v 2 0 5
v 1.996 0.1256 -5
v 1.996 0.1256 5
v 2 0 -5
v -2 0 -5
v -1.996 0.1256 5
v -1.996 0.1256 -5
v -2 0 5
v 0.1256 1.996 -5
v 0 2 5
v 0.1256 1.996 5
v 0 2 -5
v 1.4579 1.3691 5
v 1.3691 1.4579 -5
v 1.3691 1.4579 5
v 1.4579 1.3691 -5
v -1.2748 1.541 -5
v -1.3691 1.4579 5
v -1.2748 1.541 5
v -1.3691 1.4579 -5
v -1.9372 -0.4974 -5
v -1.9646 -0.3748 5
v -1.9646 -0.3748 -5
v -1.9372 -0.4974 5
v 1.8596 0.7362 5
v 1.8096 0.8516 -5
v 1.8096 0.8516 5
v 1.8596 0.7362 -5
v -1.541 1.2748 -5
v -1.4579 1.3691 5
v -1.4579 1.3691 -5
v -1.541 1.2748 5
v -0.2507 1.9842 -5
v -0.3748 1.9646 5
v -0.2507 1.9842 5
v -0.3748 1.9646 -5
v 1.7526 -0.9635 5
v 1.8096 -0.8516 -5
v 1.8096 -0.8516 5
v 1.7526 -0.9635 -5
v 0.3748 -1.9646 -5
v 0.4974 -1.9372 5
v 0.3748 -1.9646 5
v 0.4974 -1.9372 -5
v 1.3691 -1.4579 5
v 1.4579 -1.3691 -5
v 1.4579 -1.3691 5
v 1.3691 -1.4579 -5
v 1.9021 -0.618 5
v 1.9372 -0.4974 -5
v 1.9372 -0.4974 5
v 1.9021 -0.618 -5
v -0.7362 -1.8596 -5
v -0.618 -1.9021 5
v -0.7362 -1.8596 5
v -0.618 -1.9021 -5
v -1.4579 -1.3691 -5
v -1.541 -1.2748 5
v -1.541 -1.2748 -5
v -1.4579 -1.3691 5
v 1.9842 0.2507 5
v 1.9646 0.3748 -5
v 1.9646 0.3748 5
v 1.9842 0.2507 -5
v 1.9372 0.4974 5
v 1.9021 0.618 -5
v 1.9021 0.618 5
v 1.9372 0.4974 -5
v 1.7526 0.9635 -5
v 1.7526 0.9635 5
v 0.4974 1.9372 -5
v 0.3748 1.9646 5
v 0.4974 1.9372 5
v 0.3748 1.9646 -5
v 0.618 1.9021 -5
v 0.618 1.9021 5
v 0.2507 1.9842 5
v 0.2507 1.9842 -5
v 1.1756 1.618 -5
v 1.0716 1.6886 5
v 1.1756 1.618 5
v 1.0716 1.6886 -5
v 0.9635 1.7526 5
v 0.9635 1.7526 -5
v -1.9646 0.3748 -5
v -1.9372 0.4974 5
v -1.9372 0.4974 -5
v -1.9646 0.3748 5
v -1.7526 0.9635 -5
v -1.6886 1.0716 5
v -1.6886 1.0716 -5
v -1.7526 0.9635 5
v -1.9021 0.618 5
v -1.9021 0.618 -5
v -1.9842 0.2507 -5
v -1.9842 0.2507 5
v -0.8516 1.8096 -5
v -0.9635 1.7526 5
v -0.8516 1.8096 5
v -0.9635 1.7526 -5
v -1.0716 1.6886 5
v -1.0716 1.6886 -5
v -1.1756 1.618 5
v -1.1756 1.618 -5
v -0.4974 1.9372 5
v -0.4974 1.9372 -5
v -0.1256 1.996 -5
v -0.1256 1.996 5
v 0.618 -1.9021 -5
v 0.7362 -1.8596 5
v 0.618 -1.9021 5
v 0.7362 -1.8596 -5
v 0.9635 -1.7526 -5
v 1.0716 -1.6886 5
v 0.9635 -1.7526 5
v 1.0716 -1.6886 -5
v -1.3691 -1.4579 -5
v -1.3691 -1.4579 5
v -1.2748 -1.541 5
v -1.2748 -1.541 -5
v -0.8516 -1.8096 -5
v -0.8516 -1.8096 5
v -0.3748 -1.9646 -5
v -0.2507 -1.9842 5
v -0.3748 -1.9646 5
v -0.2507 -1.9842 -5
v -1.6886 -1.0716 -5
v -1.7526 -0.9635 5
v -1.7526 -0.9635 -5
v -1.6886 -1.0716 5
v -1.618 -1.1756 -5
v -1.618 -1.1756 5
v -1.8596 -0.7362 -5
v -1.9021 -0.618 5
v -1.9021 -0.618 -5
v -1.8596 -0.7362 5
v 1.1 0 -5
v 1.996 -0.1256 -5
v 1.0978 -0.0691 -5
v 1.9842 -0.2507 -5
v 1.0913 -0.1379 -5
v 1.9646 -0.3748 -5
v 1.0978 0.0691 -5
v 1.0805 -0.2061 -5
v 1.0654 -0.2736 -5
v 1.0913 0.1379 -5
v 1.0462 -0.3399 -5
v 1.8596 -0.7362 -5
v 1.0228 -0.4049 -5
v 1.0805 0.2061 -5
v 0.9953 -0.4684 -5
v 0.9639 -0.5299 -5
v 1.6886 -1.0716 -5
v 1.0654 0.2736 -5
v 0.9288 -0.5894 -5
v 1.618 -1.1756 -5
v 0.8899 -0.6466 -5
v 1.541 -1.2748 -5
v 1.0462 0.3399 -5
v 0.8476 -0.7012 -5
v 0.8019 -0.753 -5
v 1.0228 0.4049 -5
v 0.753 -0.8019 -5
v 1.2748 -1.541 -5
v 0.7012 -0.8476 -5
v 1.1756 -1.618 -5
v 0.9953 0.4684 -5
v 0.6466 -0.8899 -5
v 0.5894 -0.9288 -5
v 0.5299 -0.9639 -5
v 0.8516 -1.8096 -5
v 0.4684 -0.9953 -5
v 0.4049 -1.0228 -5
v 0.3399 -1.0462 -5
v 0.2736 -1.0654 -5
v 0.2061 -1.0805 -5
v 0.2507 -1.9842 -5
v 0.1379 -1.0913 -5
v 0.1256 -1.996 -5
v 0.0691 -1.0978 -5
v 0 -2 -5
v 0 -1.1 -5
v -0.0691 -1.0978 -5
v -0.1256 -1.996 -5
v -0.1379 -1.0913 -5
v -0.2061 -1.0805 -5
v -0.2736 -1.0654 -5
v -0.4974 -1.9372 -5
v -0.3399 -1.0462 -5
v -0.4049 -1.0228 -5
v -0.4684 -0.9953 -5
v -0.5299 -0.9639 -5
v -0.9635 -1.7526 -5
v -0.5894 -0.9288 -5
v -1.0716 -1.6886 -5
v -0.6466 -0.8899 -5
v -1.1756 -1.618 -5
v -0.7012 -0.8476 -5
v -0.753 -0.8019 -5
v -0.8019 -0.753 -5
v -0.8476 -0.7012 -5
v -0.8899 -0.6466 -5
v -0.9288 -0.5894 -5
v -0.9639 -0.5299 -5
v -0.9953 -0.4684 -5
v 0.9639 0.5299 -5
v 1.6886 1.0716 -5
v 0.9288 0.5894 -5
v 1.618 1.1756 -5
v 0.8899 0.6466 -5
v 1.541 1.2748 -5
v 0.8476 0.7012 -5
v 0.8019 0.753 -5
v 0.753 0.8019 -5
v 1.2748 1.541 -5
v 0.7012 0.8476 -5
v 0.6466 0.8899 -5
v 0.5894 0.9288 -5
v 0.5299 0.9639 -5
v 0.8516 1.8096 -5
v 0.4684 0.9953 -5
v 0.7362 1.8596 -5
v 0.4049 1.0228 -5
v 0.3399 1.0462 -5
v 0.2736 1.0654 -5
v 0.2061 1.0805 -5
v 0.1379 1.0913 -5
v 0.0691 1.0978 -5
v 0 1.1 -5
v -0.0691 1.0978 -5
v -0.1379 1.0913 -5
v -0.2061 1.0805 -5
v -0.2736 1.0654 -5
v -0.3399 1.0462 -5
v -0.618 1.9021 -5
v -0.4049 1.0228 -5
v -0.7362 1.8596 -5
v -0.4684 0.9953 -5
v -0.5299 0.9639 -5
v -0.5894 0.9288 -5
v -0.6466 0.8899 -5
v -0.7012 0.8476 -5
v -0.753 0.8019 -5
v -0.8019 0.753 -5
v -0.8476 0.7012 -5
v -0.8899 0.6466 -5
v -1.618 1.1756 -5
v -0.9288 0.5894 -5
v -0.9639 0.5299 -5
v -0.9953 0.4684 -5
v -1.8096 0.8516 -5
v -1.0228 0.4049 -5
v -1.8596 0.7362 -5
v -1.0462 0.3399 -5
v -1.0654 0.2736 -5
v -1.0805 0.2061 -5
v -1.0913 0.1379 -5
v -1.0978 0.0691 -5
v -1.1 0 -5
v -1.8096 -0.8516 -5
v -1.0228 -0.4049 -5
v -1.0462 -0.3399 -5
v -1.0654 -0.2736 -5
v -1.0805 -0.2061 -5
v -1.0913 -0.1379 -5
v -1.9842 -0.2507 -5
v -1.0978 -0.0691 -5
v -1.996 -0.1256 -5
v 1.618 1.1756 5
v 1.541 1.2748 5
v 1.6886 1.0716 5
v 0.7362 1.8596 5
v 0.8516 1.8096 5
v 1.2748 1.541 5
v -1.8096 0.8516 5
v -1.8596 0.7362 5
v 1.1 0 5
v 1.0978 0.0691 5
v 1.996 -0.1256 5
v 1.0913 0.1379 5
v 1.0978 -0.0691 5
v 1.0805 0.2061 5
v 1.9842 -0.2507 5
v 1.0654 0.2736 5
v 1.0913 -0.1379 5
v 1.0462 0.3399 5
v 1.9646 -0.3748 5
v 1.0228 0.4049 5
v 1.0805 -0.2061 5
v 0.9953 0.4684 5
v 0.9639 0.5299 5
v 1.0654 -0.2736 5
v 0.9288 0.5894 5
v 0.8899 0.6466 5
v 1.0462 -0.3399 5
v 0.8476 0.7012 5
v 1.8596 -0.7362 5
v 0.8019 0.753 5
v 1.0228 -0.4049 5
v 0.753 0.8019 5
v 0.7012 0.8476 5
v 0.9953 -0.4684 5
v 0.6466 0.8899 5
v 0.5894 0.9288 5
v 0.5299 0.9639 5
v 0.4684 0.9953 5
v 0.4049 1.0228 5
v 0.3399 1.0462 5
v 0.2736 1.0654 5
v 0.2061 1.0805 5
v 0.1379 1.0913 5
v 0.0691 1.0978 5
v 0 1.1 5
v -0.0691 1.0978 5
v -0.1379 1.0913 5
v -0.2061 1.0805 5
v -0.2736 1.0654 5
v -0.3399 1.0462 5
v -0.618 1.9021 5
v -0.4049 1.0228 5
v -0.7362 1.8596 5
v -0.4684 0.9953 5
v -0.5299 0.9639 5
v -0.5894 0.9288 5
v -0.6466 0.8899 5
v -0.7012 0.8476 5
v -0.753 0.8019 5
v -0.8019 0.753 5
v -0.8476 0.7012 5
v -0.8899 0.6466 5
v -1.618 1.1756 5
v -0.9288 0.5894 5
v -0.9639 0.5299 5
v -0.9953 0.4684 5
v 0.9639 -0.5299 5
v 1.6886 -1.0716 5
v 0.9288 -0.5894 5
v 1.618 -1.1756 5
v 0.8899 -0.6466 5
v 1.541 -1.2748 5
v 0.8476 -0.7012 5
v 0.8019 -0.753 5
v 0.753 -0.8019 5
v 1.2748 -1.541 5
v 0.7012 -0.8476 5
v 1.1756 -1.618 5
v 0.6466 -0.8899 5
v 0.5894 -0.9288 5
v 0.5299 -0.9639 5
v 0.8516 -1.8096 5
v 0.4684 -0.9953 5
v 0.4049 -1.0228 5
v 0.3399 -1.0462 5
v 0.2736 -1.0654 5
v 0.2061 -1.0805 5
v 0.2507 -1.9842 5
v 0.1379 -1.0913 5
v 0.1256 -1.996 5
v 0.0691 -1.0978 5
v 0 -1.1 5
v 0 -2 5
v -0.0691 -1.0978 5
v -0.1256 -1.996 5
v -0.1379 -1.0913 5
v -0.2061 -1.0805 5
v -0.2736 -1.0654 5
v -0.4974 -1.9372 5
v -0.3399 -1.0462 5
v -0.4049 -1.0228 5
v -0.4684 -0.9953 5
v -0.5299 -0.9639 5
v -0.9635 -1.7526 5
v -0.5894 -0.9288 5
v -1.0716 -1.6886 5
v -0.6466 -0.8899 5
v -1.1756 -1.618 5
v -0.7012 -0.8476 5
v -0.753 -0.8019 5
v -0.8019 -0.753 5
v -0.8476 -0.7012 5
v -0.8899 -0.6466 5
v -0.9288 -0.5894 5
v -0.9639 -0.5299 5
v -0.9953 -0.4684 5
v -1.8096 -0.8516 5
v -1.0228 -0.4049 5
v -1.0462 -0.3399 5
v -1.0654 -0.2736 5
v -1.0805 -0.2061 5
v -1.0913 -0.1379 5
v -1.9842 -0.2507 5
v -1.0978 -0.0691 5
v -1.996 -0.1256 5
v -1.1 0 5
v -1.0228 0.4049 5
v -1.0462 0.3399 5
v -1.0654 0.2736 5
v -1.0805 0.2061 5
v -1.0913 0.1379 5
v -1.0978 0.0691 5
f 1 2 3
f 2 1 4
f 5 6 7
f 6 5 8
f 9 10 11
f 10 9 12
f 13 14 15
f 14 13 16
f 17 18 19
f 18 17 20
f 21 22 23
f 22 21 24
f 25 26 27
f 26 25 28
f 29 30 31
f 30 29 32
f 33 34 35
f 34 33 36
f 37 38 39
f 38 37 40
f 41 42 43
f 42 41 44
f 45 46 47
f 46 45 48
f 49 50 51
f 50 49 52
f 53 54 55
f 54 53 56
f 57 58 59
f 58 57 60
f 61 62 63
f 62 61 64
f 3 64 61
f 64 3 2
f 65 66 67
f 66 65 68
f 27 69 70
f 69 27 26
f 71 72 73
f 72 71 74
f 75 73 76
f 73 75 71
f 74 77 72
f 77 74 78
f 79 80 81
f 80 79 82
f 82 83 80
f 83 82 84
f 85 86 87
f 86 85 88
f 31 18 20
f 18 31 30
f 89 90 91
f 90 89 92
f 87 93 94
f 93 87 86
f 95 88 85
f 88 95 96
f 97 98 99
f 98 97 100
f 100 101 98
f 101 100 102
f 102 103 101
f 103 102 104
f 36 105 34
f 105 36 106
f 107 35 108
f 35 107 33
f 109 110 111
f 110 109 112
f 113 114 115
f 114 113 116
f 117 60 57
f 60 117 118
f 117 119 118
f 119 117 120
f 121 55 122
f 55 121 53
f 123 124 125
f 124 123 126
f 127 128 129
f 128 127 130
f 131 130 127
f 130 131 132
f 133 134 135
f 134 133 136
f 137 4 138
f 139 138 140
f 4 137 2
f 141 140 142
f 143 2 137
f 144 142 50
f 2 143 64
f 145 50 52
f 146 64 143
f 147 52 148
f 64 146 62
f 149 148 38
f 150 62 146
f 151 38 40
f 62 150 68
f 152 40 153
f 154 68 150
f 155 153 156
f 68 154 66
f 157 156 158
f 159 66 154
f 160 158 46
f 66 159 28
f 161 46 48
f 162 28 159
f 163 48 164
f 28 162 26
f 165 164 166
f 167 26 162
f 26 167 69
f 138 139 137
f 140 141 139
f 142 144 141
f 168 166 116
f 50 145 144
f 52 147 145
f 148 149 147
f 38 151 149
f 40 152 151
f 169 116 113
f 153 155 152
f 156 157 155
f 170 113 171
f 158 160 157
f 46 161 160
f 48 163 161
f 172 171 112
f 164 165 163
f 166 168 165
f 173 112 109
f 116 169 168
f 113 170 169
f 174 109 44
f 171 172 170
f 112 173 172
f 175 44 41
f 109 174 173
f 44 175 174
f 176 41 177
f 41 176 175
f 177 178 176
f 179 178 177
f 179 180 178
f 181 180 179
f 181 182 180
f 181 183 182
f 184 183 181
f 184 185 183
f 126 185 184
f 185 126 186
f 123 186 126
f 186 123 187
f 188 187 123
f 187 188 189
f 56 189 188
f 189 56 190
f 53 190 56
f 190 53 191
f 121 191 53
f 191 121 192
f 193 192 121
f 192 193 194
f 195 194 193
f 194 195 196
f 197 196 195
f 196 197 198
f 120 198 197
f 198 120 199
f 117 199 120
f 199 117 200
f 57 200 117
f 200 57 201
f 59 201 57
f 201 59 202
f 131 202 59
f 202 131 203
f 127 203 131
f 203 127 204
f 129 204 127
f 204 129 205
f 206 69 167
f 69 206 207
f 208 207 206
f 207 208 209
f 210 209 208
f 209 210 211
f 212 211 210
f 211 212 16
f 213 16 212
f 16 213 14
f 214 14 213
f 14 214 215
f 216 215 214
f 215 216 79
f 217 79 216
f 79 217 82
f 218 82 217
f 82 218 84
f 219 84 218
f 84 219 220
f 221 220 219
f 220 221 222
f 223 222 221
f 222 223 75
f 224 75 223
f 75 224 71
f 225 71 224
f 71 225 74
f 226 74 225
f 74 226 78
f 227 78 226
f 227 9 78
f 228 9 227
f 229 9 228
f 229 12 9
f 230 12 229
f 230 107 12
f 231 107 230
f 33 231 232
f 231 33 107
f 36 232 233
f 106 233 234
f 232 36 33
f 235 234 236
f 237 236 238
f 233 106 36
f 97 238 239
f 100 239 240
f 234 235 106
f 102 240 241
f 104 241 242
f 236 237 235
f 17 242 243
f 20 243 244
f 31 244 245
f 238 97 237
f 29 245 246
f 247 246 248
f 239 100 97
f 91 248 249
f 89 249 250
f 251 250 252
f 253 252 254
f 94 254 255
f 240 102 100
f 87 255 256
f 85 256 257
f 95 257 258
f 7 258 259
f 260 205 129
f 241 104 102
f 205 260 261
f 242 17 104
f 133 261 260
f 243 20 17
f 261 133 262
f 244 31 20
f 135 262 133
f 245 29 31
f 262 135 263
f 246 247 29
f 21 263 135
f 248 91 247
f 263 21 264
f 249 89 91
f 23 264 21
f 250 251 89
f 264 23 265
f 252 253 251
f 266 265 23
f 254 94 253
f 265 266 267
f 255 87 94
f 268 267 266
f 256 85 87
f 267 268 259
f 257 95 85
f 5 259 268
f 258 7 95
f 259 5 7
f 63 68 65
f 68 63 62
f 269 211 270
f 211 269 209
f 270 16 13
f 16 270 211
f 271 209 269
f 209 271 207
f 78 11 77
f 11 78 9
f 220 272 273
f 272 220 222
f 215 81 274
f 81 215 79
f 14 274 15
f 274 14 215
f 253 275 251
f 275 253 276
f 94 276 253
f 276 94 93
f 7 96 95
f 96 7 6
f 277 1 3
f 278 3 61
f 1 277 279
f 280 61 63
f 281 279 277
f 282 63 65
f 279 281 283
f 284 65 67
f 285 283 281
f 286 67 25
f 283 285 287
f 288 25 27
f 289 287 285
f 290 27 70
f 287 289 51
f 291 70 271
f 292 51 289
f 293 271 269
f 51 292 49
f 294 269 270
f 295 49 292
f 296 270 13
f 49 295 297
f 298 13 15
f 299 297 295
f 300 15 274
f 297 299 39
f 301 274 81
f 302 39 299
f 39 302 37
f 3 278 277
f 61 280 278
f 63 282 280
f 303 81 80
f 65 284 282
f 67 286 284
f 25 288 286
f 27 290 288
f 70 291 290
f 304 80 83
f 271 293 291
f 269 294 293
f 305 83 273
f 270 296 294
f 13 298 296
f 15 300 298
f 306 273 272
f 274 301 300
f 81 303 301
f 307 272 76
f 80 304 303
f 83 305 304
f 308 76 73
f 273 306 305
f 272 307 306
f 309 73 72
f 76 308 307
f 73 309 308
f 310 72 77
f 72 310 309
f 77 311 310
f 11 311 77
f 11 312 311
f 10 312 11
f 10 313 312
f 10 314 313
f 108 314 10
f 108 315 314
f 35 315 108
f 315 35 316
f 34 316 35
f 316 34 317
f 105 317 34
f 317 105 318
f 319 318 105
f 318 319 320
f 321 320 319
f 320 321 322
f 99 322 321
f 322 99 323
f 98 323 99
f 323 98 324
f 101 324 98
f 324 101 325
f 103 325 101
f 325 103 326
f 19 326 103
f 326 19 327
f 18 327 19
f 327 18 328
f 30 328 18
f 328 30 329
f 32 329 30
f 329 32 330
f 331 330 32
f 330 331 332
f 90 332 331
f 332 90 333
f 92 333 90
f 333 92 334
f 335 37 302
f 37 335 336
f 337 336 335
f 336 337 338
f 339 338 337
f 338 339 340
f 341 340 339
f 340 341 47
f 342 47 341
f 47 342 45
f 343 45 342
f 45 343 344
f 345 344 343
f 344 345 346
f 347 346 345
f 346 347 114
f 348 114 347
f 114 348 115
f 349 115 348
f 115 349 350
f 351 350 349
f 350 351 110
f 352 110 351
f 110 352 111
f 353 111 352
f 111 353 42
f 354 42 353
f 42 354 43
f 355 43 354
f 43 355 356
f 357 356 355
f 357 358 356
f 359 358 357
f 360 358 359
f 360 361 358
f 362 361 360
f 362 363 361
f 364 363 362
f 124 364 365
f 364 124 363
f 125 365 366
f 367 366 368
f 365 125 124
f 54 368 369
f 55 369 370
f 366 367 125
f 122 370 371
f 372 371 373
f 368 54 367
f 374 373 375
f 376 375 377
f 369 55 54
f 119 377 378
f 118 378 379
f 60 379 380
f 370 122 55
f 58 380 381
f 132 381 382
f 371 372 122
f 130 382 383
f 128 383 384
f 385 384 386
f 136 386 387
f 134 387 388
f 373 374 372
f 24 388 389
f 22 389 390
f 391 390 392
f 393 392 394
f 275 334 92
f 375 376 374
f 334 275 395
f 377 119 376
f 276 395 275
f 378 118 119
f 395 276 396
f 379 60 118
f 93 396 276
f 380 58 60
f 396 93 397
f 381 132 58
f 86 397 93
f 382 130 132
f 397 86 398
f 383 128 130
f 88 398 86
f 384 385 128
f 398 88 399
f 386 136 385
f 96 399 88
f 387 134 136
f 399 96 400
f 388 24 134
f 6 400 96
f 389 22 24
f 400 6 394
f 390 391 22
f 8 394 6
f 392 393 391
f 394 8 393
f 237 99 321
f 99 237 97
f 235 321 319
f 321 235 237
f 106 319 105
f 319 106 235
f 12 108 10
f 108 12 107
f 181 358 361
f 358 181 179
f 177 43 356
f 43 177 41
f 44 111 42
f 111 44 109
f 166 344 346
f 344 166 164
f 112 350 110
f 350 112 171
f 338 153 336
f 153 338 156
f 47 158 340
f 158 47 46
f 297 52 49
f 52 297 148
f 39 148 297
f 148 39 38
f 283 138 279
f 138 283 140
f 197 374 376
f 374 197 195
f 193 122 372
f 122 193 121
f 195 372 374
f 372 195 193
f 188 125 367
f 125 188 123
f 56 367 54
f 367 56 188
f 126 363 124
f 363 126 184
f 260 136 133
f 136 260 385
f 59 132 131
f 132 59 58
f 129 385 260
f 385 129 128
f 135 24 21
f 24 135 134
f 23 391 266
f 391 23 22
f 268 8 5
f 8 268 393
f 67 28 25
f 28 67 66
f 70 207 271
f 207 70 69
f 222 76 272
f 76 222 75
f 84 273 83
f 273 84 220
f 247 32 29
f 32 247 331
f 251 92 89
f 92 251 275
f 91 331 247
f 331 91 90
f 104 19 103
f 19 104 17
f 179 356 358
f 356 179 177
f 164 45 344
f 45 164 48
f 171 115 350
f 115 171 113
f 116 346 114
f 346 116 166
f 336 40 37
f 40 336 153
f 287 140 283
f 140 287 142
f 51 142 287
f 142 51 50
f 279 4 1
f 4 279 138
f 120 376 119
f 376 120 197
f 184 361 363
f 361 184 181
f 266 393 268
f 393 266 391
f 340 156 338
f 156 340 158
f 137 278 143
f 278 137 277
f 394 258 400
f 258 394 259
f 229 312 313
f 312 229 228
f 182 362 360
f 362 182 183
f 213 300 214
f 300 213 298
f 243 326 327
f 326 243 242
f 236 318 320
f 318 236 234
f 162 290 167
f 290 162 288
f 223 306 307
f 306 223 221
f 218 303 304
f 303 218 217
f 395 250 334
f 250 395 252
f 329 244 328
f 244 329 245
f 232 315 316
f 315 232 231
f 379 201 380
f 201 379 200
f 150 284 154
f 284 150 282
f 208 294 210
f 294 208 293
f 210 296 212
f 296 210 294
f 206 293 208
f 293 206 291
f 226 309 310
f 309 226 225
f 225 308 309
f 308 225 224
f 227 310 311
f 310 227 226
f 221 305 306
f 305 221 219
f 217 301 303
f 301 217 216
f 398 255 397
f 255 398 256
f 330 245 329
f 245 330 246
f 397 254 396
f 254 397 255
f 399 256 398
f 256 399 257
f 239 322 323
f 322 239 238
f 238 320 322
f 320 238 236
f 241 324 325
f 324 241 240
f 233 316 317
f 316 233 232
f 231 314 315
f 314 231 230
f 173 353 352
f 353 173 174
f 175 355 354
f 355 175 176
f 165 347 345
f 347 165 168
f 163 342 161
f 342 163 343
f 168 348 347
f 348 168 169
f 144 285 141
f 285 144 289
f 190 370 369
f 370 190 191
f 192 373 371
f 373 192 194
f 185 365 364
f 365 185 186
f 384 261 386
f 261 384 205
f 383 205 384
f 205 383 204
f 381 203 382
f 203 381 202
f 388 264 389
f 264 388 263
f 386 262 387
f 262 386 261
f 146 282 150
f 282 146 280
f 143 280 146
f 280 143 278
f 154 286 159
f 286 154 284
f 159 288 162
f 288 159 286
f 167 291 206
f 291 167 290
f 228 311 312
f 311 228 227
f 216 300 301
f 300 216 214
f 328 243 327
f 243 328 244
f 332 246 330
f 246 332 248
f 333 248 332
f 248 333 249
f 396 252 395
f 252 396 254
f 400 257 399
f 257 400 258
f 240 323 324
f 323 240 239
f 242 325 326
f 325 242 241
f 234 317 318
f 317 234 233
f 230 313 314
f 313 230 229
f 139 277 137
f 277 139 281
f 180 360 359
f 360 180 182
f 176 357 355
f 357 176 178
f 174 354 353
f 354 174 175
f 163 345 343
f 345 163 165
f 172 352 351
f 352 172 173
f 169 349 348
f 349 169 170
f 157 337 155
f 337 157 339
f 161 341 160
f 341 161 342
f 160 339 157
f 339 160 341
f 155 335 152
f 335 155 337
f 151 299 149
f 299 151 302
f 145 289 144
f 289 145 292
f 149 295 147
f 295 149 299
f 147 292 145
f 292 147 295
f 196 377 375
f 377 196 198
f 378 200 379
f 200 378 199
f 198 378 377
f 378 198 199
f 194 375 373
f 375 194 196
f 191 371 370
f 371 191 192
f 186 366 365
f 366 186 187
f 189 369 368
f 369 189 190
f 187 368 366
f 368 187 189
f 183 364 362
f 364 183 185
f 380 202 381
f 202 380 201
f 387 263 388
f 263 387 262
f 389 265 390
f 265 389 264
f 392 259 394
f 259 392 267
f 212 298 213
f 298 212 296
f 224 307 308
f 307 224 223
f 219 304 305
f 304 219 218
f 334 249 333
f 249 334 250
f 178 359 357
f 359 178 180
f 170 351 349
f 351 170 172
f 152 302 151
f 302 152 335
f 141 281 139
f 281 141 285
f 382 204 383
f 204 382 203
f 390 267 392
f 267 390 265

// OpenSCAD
//Module Entretoise ronde
//Di est le diametre int
//De est le diametre ext
//lr est la longueur
//xt, yt, zt sont les coordonnées
$fn=100;//nombre de facettes
//module ent_R(Di,De, lr, xt, yt,zt)
//{
//translate([xt,yt,zt])
De=4;
Di=2.2;
lr=10;
difference()
	{
	rotate([0,0,0])cylinder(r=De/2,h=lr, center = true);
	rotate([0,0,0])cylinder(r=Di/2,h=lr+2, center = true);
	}
//}
